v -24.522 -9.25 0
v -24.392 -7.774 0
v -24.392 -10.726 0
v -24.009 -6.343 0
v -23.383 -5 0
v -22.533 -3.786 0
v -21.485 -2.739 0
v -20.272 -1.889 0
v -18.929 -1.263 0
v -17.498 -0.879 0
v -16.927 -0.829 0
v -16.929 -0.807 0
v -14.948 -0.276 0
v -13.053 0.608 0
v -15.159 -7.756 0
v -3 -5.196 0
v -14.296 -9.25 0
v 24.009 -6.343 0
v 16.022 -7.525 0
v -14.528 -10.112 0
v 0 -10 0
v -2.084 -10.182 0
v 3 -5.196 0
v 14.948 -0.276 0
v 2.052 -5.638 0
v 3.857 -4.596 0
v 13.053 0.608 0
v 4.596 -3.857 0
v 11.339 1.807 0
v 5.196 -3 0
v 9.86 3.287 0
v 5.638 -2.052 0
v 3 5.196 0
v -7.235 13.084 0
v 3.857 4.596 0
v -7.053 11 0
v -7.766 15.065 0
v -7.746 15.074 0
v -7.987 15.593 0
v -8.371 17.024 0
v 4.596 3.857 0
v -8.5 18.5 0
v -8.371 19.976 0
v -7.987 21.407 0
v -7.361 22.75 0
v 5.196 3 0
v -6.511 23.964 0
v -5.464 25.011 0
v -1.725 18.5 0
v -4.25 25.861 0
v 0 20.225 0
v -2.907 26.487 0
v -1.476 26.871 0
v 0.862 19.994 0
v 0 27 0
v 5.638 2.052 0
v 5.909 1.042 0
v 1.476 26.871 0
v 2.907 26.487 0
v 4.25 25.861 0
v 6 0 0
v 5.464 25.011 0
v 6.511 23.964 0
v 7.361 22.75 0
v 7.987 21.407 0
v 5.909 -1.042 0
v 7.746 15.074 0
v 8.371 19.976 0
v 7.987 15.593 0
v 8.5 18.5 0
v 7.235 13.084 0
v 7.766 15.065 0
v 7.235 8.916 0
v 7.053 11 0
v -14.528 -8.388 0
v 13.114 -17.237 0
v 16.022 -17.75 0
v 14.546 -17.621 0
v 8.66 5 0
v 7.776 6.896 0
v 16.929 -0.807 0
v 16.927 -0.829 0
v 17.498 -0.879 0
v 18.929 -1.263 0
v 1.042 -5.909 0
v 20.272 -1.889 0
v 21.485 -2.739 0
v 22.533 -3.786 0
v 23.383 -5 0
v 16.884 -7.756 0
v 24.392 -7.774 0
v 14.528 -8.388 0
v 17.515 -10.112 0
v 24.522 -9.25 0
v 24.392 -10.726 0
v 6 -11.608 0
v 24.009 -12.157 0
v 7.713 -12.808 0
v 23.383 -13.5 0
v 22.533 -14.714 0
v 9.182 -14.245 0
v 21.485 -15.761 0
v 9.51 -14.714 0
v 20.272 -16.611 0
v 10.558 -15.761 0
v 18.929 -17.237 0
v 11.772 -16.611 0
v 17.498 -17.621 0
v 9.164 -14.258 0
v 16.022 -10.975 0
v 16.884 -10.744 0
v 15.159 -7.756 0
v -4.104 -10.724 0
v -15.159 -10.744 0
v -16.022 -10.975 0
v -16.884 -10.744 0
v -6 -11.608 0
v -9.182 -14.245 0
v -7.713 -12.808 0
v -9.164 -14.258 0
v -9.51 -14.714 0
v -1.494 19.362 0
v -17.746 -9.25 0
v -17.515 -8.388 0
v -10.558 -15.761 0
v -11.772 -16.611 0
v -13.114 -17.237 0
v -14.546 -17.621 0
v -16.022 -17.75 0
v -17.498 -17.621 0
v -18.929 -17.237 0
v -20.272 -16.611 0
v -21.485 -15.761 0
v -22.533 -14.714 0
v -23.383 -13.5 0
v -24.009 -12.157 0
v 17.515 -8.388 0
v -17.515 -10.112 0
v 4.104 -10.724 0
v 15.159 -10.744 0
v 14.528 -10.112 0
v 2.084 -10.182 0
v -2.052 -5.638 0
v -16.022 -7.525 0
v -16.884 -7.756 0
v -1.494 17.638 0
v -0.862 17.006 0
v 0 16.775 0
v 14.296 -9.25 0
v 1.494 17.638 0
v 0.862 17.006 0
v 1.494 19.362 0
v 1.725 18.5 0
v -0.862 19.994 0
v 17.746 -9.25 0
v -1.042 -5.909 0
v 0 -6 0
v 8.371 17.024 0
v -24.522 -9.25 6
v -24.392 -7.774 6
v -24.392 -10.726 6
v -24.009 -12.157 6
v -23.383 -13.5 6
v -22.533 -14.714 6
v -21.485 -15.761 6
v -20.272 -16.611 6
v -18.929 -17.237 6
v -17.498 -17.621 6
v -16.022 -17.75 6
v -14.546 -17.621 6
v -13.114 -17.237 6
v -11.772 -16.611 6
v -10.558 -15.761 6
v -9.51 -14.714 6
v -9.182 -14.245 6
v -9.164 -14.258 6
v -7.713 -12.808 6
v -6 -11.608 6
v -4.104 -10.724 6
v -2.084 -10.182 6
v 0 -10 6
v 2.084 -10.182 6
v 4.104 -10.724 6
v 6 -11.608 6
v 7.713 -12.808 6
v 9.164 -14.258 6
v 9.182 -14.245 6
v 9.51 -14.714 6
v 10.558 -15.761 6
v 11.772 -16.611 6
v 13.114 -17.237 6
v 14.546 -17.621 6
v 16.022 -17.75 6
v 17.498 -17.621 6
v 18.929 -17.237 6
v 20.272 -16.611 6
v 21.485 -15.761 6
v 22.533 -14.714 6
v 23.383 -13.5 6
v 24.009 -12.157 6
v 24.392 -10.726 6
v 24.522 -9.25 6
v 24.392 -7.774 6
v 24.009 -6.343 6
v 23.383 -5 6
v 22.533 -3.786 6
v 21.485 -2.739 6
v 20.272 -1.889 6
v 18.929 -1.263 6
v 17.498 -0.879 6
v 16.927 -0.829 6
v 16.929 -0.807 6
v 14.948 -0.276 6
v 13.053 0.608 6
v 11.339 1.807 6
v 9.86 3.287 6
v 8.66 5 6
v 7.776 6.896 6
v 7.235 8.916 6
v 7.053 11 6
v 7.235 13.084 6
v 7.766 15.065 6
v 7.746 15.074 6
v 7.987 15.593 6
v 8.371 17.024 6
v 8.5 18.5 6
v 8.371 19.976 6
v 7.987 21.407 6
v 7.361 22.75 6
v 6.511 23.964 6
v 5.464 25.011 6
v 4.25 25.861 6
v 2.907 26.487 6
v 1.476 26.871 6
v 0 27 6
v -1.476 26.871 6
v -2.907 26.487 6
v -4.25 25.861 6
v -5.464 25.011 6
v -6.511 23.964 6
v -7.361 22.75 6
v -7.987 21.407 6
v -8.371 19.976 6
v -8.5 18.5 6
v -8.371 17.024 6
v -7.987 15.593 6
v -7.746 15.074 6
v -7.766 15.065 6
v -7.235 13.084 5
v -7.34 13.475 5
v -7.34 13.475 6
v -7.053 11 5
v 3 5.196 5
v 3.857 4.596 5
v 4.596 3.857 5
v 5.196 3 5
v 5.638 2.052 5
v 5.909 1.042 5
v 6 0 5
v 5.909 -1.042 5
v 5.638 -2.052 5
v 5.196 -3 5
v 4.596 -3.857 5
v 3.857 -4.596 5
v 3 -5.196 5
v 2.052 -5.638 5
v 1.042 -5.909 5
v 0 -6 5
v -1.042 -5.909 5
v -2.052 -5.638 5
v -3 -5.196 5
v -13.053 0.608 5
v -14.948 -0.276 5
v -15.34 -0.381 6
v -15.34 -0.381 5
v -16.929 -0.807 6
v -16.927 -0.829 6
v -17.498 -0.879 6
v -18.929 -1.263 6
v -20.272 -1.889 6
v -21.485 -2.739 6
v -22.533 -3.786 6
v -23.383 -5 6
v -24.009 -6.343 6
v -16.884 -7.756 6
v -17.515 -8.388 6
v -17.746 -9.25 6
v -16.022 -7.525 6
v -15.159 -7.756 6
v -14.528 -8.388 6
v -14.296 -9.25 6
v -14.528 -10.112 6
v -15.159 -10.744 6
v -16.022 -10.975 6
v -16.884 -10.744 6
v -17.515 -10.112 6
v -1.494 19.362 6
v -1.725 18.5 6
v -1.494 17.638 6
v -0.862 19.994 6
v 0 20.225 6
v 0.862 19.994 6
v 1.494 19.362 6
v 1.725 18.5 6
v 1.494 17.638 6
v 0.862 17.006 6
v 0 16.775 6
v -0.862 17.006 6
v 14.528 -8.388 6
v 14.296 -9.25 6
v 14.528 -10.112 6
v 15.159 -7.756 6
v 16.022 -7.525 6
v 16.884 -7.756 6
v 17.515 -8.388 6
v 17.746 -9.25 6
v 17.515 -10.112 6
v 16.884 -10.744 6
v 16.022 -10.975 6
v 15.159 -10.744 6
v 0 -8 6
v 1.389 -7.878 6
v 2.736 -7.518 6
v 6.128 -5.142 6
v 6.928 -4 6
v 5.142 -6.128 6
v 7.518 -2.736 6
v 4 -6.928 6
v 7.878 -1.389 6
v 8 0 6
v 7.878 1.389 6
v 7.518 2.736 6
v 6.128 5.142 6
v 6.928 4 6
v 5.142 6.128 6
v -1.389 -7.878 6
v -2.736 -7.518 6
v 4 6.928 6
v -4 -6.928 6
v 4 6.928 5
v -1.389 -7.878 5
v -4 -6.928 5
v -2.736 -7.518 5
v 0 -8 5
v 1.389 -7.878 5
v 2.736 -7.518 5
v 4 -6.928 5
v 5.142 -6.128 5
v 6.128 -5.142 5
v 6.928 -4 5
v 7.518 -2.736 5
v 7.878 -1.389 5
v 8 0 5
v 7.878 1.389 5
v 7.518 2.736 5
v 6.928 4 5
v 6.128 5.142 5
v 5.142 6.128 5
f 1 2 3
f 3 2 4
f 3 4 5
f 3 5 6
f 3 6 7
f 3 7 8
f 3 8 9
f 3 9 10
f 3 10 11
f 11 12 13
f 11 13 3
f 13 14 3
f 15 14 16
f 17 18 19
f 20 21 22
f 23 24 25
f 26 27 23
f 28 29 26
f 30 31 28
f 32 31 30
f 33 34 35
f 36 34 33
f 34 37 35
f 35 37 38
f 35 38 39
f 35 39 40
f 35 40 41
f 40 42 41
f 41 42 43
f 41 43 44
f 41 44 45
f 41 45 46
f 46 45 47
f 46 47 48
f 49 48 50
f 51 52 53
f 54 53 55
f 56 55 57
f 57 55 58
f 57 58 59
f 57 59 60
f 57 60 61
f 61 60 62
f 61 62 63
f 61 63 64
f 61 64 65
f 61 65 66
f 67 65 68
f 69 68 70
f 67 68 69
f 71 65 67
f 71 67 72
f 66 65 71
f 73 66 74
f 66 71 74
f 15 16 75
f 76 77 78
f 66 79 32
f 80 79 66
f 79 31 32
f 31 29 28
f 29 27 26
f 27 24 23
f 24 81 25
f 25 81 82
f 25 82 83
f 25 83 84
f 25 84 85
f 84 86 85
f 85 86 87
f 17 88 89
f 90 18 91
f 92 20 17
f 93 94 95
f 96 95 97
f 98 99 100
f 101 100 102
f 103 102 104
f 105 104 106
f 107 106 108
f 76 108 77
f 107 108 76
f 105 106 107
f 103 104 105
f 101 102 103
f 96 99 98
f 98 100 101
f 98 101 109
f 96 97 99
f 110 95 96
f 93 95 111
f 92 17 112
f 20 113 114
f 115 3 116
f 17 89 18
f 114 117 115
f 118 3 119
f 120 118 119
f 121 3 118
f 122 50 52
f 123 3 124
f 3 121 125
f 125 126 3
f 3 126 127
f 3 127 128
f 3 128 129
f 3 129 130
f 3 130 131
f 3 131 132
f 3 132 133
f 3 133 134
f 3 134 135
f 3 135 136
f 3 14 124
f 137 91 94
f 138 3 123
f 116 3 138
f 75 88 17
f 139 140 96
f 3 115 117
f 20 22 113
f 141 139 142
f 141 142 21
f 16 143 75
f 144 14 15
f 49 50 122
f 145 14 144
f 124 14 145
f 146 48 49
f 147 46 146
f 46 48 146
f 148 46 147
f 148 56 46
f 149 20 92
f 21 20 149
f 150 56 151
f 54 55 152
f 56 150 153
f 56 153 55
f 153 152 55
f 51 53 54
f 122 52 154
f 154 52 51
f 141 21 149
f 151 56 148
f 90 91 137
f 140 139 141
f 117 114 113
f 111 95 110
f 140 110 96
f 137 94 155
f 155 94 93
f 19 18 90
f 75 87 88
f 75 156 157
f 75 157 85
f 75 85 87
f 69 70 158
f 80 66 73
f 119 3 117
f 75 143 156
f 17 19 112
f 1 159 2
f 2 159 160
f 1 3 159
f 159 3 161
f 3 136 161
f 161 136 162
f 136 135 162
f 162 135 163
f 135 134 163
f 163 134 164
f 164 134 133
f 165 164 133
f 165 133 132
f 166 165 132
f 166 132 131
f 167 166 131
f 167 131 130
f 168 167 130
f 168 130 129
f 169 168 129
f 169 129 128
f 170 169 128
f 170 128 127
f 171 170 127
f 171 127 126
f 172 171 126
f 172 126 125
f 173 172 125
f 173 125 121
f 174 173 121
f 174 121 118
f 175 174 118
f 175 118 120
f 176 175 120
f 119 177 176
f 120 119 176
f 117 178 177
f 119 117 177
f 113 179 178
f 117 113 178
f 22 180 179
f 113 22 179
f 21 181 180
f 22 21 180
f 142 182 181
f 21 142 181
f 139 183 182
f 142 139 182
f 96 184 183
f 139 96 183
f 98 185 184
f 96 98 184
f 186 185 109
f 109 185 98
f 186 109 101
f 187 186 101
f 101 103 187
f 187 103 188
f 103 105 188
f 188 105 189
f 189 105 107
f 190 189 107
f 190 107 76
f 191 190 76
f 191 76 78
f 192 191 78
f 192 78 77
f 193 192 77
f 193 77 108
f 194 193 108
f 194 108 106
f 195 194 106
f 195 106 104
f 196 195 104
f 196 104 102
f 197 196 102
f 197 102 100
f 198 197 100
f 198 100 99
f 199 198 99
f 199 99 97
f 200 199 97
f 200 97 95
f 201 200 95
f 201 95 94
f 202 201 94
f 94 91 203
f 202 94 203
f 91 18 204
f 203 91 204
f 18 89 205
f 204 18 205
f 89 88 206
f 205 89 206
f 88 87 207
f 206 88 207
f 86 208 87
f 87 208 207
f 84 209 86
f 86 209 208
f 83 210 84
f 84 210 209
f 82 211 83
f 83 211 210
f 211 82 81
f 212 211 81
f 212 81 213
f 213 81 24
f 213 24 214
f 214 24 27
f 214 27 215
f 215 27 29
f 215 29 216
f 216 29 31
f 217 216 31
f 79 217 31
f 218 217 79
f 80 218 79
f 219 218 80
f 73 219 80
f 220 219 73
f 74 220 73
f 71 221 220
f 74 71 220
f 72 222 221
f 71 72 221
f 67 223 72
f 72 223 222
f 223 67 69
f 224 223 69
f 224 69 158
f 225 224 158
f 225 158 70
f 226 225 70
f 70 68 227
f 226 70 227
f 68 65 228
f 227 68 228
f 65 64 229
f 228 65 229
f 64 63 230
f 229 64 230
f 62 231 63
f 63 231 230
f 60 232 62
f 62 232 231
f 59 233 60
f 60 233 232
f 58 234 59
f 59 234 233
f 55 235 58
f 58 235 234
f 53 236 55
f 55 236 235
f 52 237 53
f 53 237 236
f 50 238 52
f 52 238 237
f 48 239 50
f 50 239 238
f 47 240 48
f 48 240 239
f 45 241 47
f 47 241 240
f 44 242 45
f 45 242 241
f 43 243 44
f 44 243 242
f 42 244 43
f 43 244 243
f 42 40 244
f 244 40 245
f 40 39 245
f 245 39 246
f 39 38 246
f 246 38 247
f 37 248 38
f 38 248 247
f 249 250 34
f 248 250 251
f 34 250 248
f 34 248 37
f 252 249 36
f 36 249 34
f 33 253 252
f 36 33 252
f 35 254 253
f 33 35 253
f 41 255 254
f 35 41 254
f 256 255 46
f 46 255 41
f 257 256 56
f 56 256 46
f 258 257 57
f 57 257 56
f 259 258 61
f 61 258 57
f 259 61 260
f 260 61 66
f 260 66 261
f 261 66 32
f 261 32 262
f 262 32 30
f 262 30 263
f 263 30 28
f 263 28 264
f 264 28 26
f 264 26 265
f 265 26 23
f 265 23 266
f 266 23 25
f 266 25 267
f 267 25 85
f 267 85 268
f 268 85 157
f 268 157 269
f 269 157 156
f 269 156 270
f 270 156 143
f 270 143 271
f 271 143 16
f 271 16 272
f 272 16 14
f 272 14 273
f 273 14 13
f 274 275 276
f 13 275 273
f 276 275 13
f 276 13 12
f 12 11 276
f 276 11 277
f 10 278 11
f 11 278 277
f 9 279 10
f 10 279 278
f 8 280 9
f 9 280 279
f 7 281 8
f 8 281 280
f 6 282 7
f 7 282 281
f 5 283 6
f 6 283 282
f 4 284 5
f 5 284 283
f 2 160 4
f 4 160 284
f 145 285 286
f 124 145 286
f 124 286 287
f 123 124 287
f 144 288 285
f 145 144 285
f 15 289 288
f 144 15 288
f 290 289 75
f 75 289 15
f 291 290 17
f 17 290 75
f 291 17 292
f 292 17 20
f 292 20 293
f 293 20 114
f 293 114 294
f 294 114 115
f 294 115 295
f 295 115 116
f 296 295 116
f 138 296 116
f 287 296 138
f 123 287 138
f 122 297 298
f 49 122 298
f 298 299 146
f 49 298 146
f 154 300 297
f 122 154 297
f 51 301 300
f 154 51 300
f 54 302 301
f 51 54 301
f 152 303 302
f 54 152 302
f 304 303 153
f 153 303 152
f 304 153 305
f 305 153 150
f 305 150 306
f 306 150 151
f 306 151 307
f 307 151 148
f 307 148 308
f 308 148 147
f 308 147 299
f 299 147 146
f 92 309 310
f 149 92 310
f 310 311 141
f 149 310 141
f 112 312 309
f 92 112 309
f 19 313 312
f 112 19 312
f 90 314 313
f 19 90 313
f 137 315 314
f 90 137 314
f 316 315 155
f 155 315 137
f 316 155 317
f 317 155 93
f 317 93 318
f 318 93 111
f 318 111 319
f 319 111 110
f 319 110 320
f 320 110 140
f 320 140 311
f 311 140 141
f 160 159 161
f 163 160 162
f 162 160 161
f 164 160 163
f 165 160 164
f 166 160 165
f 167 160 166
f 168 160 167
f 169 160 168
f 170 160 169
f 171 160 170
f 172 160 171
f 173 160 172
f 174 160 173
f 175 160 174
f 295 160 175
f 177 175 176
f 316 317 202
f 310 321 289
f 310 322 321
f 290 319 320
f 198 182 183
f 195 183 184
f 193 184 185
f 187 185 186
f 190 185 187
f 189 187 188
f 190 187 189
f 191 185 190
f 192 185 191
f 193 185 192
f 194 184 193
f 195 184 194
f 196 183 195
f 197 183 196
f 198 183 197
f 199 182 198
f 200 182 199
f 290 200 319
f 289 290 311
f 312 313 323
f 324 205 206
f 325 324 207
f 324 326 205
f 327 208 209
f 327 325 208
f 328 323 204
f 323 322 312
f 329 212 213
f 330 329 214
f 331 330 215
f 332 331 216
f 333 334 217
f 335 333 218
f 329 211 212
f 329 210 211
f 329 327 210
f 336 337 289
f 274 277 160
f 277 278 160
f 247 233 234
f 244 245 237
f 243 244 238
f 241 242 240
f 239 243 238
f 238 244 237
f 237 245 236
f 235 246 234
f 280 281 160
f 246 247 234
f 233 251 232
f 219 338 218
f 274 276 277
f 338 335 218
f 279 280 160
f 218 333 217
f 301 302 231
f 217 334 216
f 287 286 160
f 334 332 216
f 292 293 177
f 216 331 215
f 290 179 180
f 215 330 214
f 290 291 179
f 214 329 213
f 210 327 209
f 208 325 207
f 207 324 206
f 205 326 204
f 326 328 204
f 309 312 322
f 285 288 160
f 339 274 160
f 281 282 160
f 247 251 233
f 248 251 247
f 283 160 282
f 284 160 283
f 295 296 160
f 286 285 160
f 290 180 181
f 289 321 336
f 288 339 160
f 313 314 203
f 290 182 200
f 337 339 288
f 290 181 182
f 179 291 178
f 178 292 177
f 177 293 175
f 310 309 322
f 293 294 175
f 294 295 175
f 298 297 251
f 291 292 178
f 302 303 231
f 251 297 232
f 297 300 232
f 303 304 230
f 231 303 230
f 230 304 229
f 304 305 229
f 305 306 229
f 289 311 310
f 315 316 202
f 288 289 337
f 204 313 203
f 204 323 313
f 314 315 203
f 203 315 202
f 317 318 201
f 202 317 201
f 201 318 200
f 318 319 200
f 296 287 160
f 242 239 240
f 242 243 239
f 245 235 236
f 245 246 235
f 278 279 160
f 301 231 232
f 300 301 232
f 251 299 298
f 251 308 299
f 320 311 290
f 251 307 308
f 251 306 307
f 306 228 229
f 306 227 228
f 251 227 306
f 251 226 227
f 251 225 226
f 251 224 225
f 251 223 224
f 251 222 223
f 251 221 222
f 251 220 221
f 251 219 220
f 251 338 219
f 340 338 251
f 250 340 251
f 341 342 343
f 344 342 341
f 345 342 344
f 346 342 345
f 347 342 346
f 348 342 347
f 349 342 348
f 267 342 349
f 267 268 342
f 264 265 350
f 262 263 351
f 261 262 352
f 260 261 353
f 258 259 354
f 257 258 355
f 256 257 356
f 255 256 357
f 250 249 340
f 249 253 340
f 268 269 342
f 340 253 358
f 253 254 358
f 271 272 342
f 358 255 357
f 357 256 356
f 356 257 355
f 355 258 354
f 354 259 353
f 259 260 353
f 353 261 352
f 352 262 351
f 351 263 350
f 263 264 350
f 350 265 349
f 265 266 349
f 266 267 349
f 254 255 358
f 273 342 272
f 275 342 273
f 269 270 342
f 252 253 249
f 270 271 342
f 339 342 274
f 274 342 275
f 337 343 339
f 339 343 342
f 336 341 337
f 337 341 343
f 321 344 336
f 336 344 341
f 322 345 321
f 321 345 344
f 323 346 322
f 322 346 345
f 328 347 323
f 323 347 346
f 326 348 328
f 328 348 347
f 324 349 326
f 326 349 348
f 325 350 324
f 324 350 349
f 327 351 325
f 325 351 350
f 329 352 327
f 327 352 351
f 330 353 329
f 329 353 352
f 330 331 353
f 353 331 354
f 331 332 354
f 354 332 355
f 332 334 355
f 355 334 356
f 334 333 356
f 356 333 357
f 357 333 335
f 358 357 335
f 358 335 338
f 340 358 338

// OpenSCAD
// file: configuration.scad
// Increase this if your slicer or printer make holes too tight.
extra_radius = 0.1;

// OD = outside diameter, corner to corner.
m3_nut_od = 6.1;
m3_nut_radius = m3_nut_od/2 + 0.2 + extra_radius;

// Major diameter of metric 3mm thread.
m3_major = 2.85;
m3_radius = m3_major/2 + extra_radius;
m3_wide_radius = m3_major/2 + extra_radius + 0.2;

// OD = outside diameter, corner to corner.
m5_nut_od = 8.1;
m5_nut_radius = m5_nut_od/2 + 0.2 + extra_radius;

// Major diameter of metric 5mm thread.
m5_major = 4.85;
m5_radius = m5_major/2 + extra_radius;
m5_wide_radius = m5_major/2 + extra_radius + 0.2;

// NEMA17 stepper motors.
motor_shaft_diameter = 5;
motor_shaft_radius = motor_shaft_diameter/2 + extra_radius;

// Frame brackets. M3x8mm screws work best with 3.6 mm brackets.
thickness = 3.6;

// OpenBeam or Misumi. Currently only 15x15 mm, but there is a plan
// to make models more parametric and allow 20x20 mm in the future.
extrusion = 15;
// main file
include <configuration.scad>;

separation = 44;  // Distance between ball joint mounting faces.
offset = 22;  // Same as DELTA_EFFECTOR_OFFSET in Marlin.
mount_radius = 18.5;  // Hotend mounting screws, standard would be 25mm.
jhead_od_radius = 8;  // Hole for the hotend (J-Head diameter is 16mm).
jhead_id_radius = 6;
height = 6;
jhead_height=5;
mount_height=31;


module mount() {
  difference() {
    union() {
		cylinder(r=offset-5, h=height, center=true, $fn=36);
		
		for (a = [0:120:359]) rotate([0, 0, a]) {
      	translate([0, mount_radius, 0])	cylinder(r=8.5, h=height, center=true, $fn=36);
    		}
		   
    }


	 for (a = [0:120:359]) rotate([0, 0, a]) {
      translate([0, mount_radius, 0])	cylinder(r=m3_wide_radius, h=2*mount_height+height, center=true, $fn=12);
    }

    translate([0, 0, -height/2])cylinder(r=jhead_id_radius, h=height, $fn=36); 
    translate([0, 0, 2])cylinder(r=jhead_od_radius, h=1, $fn=36);

	rotate([0, 0, 60])translate([0,offset/2,1])cube ([jhead_id_radius*2,offset,jhead_height*2],center=true);
	rotate([0, 0, 60])translate([0,offset/2,2.5])cube ([jhead_od_radius*2,offset,1],center=true);


    for (a = [60:120:359]) rotate([0, 0, a]) {
      translate([0, offset, height/2])	cylinder(r=12, h=2*height, center=true, $fn=36);
    }

  }
}

translate([0, 0, height/2]) mount();
